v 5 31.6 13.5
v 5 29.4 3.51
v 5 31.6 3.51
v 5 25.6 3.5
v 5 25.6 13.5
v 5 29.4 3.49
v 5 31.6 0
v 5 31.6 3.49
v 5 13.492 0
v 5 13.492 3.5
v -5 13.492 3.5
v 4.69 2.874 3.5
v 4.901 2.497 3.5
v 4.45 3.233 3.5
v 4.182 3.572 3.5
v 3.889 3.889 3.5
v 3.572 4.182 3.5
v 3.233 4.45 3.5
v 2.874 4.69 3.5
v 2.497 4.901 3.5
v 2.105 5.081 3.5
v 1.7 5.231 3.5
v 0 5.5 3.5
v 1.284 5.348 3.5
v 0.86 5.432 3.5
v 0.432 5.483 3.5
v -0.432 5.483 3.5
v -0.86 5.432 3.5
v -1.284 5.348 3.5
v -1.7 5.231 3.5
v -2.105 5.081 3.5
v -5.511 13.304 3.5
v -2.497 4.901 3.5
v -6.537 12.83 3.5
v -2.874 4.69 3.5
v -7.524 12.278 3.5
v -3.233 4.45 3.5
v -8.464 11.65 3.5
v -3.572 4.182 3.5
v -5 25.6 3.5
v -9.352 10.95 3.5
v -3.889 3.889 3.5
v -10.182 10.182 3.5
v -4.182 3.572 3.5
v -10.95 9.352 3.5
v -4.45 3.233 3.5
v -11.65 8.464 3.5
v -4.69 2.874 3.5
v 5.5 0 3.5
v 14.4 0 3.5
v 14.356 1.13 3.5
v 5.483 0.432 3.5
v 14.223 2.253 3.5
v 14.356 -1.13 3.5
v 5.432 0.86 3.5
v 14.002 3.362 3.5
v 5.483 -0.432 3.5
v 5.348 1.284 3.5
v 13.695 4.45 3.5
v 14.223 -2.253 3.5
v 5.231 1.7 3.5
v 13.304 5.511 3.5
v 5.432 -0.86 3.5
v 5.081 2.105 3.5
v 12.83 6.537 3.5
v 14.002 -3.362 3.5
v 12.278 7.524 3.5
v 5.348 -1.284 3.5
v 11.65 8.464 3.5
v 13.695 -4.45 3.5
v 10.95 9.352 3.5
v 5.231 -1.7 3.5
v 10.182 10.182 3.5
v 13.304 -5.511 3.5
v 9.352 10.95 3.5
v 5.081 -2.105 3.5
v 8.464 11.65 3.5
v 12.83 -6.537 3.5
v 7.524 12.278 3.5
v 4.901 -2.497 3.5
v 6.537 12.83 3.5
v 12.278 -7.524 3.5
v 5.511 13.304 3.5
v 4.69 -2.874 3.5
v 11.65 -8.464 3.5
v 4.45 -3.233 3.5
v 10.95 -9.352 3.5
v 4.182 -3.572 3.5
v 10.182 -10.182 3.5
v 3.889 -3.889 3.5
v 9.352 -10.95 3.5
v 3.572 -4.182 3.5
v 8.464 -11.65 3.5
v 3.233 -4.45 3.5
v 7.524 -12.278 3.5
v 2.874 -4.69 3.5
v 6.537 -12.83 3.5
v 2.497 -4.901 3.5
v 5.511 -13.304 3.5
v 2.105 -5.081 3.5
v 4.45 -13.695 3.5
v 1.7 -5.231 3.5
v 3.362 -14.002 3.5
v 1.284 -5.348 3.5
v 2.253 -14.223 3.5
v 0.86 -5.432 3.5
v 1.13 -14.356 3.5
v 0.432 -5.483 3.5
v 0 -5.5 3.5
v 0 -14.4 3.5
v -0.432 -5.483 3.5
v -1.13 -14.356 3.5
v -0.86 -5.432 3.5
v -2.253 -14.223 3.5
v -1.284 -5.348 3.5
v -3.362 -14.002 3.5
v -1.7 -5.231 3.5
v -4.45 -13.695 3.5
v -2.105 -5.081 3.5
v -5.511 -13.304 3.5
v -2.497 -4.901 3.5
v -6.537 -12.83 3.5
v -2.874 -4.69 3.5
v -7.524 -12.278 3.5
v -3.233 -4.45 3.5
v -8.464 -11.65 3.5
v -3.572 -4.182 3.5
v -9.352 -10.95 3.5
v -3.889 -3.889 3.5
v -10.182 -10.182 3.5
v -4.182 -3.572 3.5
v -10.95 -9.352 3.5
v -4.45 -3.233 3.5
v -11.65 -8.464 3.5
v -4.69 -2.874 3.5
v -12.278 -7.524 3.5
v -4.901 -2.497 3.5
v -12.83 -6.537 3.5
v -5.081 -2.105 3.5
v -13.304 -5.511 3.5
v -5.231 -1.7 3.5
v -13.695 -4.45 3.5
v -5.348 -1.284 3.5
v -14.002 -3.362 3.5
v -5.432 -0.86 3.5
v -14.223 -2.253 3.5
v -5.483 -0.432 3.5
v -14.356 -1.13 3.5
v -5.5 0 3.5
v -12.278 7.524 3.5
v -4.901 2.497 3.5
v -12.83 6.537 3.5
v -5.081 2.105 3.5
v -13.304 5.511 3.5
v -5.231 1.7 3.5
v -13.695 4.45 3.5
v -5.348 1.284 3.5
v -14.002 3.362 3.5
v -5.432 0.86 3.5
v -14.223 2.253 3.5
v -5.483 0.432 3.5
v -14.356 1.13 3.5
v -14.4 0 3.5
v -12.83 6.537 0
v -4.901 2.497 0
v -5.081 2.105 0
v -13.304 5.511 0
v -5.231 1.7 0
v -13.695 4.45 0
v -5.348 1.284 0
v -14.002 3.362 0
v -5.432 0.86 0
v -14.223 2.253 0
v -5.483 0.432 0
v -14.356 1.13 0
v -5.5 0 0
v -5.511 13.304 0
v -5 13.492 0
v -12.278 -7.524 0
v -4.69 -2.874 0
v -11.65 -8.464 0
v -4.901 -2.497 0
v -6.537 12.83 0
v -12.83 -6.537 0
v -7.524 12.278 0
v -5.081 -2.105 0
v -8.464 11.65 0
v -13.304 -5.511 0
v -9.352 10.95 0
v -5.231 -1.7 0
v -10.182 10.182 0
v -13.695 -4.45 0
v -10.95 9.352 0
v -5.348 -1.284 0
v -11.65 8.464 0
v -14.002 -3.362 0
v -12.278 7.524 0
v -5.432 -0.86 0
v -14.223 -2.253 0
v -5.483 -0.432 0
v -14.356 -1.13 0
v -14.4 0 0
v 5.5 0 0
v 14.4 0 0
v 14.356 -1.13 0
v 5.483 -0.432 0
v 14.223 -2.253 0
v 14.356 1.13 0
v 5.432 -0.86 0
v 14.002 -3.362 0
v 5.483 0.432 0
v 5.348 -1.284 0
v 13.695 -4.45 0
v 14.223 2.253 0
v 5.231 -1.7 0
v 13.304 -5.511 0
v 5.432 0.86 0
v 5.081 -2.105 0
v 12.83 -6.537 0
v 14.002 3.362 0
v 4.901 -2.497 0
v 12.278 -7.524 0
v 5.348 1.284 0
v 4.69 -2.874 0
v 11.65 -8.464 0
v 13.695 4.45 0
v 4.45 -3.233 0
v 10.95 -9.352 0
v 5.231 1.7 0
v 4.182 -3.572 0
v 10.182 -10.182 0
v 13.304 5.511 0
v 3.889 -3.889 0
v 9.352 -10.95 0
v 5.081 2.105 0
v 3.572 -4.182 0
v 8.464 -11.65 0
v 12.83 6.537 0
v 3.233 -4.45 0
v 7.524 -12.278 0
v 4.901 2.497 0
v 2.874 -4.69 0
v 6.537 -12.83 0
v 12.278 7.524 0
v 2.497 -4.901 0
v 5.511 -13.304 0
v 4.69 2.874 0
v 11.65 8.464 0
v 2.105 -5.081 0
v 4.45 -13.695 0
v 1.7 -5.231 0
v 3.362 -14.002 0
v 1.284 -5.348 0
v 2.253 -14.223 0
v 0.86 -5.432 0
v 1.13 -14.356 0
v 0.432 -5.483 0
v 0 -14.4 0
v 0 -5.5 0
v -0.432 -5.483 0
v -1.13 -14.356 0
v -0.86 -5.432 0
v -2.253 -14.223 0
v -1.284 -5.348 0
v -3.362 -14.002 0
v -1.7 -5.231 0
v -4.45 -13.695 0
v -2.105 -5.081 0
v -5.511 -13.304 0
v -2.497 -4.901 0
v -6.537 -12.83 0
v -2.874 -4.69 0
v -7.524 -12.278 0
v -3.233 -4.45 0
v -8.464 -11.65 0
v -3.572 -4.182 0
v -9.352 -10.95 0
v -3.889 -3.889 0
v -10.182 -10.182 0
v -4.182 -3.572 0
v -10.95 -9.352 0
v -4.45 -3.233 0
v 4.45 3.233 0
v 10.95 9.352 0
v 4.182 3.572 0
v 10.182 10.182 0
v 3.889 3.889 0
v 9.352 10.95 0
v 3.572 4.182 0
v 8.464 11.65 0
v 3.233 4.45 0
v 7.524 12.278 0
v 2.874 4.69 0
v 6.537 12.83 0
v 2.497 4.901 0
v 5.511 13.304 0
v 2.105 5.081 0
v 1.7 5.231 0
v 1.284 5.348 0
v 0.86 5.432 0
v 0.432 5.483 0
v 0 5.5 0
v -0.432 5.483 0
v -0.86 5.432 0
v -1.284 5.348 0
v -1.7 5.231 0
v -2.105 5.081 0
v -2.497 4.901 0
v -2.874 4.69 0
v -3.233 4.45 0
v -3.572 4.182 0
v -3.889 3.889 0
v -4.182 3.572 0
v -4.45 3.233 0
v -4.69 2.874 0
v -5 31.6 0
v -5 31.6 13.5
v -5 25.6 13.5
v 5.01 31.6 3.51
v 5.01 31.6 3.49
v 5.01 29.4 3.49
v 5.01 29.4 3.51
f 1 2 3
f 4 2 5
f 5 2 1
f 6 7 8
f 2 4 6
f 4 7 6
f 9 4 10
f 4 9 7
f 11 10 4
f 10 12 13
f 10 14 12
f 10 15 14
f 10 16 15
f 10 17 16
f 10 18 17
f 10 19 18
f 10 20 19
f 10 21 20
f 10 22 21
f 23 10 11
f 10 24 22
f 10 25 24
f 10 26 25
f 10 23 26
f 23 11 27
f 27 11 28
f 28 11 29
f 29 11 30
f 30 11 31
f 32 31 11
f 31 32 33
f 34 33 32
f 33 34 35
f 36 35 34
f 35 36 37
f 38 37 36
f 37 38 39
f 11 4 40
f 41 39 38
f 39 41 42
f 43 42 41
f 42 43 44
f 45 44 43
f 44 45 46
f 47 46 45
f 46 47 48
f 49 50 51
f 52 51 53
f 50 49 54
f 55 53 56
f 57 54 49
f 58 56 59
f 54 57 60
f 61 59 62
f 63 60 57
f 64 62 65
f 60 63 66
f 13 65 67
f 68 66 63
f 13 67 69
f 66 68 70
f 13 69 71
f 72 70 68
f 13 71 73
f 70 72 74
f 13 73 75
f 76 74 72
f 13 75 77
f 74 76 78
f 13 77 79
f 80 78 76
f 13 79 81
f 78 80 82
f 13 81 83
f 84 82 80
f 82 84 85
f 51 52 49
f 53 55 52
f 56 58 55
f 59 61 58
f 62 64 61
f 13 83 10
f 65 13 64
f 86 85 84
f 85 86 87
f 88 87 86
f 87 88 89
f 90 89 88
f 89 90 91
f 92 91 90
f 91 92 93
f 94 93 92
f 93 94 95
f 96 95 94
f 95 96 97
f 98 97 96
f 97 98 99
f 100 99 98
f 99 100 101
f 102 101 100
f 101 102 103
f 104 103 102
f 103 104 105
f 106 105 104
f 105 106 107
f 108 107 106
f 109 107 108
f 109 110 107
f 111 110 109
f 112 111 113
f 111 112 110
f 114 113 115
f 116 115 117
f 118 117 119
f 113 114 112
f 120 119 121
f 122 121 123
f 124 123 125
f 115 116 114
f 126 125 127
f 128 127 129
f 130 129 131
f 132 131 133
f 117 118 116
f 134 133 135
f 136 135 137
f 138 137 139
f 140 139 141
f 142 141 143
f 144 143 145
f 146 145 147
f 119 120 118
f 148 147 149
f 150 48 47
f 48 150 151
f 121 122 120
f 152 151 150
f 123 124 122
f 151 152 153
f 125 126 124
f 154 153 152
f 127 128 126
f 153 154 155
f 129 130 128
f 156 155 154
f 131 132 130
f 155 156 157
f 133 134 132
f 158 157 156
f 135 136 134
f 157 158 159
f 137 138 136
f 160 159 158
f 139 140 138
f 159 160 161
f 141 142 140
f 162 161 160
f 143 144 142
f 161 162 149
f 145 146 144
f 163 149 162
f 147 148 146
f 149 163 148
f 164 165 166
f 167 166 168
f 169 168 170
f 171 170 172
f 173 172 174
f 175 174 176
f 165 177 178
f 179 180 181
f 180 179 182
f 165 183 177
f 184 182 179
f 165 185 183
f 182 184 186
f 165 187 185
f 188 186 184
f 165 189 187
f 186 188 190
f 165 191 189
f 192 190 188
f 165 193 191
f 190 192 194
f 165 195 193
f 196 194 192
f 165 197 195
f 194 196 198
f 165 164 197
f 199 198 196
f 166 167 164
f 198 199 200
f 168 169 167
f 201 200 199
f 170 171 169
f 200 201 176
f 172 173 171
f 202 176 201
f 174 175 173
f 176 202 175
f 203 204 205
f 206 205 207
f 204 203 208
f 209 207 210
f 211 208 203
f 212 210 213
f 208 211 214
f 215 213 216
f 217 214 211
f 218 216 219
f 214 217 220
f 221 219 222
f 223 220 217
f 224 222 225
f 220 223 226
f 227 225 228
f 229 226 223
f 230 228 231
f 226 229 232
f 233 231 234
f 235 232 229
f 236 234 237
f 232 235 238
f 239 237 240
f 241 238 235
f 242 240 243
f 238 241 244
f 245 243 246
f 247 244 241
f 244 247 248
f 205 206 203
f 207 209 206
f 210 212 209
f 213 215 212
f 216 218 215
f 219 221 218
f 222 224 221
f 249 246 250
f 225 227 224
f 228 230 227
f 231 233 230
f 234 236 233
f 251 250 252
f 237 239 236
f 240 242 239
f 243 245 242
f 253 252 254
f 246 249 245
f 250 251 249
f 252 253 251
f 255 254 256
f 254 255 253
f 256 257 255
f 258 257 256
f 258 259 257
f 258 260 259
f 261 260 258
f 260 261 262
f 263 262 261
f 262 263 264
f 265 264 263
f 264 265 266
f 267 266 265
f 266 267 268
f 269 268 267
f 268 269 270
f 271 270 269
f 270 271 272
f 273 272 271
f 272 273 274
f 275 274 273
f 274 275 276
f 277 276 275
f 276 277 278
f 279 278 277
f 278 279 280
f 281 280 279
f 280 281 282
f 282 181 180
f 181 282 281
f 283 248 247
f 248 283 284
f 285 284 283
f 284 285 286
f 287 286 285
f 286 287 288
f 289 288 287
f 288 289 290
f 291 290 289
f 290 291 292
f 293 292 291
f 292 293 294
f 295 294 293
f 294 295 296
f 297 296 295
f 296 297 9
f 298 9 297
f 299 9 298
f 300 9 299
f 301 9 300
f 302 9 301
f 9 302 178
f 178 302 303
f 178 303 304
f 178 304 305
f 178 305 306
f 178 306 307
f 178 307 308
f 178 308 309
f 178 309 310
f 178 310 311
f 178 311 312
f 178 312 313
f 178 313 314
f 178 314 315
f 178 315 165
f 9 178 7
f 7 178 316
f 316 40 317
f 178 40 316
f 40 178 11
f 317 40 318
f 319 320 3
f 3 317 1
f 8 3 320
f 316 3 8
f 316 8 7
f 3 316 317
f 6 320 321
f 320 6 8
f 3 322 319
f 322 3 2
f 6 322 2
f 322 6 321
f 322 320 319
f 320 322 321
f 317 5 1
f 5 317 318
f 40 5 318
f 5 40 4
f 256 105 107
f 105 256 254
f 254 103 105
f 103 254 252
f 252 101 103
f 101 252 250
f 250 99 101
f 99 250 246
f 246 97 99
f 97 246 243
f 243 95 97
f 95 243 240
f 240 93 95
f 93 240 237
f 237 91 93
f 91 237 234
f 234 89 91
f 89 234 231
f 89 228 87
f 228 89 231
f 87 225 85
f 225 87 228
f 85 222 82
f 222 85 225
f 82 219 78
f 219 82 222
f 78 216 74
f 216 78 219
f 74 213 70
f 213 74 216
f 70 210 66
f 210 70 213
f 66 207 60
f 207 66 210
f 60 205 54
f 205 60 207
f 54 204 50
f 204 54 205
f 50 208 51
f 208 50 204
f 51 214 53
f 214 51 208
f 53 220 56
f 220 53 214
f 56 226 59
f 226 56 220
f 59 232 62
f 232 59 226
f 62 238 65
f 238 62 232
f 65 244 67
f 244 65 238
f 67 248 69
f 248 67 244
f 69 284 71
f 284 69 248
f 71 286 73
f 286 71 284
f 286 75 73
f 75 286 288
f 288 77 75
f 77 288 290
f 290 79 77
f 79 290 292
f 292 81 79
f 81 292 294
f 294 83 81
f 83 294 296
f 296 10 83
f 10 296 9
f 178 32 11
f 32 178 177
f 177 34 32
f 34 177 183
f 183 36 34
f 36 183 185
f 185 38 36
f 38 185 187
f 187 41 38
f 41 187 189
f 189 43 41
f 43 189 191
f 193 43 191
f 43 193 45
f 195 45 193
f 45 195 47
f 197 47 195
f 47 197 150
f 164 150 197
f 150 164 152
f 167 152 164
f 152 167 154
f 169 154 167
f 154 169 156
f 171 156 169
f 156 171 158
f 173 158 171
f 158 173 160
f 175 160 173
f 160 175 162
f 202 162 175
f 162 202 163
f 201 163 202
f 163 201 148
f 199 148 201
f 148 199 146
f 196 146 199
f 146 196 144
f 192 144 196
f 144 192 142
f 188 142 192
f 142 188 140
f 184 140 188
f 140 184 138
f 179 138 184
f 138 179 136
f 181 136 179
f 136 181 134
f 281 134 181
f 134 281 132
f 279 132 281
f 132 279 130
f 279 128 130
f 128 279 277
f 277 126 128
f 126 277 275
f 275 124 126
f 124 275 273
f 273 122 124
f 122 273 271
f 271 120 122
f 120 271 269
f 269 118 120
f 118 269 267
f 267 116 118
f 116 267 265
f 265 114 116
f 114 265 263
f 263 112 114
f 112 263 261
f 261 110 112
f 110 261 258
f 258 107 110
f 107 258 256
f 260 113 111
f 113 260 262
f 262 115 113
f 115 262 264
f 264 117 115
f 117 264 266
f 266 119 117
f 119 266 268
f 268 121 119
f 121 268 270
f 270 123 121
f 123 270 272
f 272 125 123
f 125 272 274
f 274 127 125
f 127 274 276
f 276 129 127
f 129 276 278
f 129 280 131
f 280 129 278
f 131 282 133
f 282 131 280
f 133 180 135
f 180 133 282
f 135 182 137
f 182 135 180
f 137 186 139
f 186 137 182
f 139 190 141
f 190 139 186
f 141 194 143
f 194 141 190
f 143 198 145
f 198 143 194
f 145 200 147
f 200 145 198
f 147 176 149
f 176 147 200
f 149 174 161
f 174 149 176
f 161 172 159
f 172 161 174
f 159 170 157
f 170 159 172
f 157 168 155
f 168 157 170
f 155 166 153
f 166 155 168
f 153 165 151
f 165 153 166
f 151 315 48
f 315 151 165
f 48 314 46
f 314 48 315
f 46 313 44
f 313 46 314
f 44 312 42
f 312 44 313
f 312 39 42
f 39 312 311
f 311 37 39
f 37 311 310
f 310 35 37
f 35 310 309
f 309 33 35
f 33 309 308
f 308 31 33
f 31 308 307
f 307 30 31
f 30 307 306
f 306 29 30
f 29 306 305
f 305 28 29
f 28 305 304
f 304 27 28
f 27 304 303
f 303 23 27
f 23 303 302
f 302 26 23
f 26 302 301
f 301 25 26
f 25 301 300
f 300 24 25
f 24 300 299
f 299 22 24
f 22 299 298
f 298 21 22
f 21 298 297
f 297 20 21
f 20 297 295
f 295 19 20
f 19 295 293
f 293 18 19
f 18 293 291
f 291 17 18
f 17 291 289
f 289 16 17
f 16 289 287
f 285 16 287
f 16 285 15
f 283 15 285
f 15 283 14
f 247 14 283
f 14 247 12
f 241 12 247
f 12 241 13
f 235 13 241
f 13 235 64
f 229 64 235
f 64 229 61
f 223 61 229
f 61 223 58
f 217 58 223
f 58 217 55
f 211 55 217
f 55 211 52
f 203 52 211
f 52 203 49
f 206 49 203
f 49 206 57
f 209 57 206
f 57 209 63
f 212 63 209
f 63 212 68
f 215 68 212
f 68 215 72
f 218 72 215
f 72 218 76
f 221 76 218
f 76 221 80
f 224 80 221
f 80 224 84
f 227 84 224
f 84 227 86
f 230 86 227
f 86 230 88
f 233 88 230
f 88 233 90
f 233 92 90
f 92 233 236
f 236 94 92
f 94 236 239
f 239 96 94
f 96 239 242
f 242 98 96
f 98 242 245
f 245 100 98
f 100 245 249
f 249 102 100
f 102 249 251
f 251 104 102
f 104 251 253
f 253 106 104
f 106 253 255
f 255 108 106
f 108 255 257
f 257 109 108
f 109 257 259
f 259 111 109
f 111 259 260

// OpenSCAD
/*
 * Washer under OEM air-valve cap. CAP_OD = factory cap OD (29.5 mm here): ring fits under the cap with small clearance
 * and is sized so the outer annulus sits slightly under the cap skirt (tune UNDER_CAP_DELTA).
 * Bent tab + small flange with SENSOR_MOUNT hole; rotate TAB_ROT_DEG to line up with the lower fork mount.
 */

$fn = 80;

// Tappo valvola (diametro nominale)
CAP_OD = 29.5;
// Rondella un filo piu piccola del tappo per andare sotto; se serve piu margine aumenta UNDER_CAP_DELTA
UNDER_CAP_DELTA = 0.7;
WASHER_OD = CAP_OD - UNDER_CAP_DELTA;
WASHER_ID = 11.0;
THICKNESS = 3.5;

// Linguetta: piastra orizzontale complanare all'anello + gamba verticale spessa (rigida, no gradini)
TAB_W = 10.0;
TAB_HORIZ = 6.0;
EXTRA_REACH = 10.0;
TAB_UP = 0.0;
TAB_THICK = 2.2;

// Flangia sensore in cima (robusta) con foro passante LATERALE (asse X)
FLANGE_W = 10.0;
FLANGE_T = 6.0;
FLANGE_H = 10.0;
SENSOR_MOUNT_D = 0.0;
GUSSET = 0.0;

// Ruota tutta la linguetta attorno a Z (gradi) per allineare foro sensore al supporto inferiore
TAB_ROT_DEG = 0;

R_out = WASHER_OD / 2;

module washer_2d_profile() {
    difference() {
        circle(d = WASHER_OD);
        circle(d = WASHER_ID);
    }
}

module washer_solid() {
    linear_extrude(height = THICKNESS, convexity = 4)
        washer_2d_profile();
}

module tab_bent_up() {
    y0 = R_out - 1.0;
    base_len = TAB_HORIZ + EXTRA_REACH;
    union() {
        translate([-TAB_W / 2, y0, 0])
            cube([TAB_W, base_len + TAB_THICK, THICKNESS]);
        translate([-TAB_W / 2, y0 + base_len, THICKNESS - 0.01])
            cube([TAB_W, TAB_THICK, TAB_UP + 0.01]);
    }
}

// Reinforced block on top of vertical leg; through-hole along X (side), plus triangular gussets on the base
module sensor_flange(y_vert, z_vert, h_vert) {
    z_top = z_vert + h_vert;
    y_front = y_vert + TAB_THICK - FLANGE_T;
    difference() {
        union() {
            translate([-FLANGE_W / 2, y_front, z_top - 0.01])
                cube([FLANGE_W, FLANGE_T, FLANGE_H + 0.01]);
            for (sx = [-1, 1])
                hull() {
                    translate([sx * (TAB_W / 2 - 0.01), y_vert, z_top - 0.01])
                        cube([0.02, TAB_THICK, 0.02]);
                    translate([sx * (TAB_W / 2 - 0.01), y_vert, z_top + GUSSET - 0.01])
                        cube([0.02, TAB_THICK, 0.02]);
                    translate([sx * (TAB_W / 2 - 0.01), y_vert - GUSSET, z_top - 0.01])
                        cube([0.02, 0.02, 0.02]);
                }
        }
        translate([-FLANGE_W / 2 - 1, y_front + FLANGE_T / 2, z_top + FLANGE_H / 2])
            rotate([0, 90, 0])
                cylinder(h = FLANGE_W + 2, d = SENSOR_MOUNT_D);
    }
}

module tab_with_cuts() {
    y0 = R_out - 1.0;
    y_vert = y0 + TAB_HORIZ + EXTRA_REACH;
    z_vert = THICKNESS;
    h_vert = TAB_UP;
    union() {
        tab_bent_up();
        sensor_flange(y_vert, z_vert, h_vert);
    }
}

module air_valve_washer_sensor() {
    union() {
        washer_solid();
        rotate([0, 0, TAB_ROT_DEG])
            tab_with_cuts();
    }
}

air_valve_washer_sensor();
